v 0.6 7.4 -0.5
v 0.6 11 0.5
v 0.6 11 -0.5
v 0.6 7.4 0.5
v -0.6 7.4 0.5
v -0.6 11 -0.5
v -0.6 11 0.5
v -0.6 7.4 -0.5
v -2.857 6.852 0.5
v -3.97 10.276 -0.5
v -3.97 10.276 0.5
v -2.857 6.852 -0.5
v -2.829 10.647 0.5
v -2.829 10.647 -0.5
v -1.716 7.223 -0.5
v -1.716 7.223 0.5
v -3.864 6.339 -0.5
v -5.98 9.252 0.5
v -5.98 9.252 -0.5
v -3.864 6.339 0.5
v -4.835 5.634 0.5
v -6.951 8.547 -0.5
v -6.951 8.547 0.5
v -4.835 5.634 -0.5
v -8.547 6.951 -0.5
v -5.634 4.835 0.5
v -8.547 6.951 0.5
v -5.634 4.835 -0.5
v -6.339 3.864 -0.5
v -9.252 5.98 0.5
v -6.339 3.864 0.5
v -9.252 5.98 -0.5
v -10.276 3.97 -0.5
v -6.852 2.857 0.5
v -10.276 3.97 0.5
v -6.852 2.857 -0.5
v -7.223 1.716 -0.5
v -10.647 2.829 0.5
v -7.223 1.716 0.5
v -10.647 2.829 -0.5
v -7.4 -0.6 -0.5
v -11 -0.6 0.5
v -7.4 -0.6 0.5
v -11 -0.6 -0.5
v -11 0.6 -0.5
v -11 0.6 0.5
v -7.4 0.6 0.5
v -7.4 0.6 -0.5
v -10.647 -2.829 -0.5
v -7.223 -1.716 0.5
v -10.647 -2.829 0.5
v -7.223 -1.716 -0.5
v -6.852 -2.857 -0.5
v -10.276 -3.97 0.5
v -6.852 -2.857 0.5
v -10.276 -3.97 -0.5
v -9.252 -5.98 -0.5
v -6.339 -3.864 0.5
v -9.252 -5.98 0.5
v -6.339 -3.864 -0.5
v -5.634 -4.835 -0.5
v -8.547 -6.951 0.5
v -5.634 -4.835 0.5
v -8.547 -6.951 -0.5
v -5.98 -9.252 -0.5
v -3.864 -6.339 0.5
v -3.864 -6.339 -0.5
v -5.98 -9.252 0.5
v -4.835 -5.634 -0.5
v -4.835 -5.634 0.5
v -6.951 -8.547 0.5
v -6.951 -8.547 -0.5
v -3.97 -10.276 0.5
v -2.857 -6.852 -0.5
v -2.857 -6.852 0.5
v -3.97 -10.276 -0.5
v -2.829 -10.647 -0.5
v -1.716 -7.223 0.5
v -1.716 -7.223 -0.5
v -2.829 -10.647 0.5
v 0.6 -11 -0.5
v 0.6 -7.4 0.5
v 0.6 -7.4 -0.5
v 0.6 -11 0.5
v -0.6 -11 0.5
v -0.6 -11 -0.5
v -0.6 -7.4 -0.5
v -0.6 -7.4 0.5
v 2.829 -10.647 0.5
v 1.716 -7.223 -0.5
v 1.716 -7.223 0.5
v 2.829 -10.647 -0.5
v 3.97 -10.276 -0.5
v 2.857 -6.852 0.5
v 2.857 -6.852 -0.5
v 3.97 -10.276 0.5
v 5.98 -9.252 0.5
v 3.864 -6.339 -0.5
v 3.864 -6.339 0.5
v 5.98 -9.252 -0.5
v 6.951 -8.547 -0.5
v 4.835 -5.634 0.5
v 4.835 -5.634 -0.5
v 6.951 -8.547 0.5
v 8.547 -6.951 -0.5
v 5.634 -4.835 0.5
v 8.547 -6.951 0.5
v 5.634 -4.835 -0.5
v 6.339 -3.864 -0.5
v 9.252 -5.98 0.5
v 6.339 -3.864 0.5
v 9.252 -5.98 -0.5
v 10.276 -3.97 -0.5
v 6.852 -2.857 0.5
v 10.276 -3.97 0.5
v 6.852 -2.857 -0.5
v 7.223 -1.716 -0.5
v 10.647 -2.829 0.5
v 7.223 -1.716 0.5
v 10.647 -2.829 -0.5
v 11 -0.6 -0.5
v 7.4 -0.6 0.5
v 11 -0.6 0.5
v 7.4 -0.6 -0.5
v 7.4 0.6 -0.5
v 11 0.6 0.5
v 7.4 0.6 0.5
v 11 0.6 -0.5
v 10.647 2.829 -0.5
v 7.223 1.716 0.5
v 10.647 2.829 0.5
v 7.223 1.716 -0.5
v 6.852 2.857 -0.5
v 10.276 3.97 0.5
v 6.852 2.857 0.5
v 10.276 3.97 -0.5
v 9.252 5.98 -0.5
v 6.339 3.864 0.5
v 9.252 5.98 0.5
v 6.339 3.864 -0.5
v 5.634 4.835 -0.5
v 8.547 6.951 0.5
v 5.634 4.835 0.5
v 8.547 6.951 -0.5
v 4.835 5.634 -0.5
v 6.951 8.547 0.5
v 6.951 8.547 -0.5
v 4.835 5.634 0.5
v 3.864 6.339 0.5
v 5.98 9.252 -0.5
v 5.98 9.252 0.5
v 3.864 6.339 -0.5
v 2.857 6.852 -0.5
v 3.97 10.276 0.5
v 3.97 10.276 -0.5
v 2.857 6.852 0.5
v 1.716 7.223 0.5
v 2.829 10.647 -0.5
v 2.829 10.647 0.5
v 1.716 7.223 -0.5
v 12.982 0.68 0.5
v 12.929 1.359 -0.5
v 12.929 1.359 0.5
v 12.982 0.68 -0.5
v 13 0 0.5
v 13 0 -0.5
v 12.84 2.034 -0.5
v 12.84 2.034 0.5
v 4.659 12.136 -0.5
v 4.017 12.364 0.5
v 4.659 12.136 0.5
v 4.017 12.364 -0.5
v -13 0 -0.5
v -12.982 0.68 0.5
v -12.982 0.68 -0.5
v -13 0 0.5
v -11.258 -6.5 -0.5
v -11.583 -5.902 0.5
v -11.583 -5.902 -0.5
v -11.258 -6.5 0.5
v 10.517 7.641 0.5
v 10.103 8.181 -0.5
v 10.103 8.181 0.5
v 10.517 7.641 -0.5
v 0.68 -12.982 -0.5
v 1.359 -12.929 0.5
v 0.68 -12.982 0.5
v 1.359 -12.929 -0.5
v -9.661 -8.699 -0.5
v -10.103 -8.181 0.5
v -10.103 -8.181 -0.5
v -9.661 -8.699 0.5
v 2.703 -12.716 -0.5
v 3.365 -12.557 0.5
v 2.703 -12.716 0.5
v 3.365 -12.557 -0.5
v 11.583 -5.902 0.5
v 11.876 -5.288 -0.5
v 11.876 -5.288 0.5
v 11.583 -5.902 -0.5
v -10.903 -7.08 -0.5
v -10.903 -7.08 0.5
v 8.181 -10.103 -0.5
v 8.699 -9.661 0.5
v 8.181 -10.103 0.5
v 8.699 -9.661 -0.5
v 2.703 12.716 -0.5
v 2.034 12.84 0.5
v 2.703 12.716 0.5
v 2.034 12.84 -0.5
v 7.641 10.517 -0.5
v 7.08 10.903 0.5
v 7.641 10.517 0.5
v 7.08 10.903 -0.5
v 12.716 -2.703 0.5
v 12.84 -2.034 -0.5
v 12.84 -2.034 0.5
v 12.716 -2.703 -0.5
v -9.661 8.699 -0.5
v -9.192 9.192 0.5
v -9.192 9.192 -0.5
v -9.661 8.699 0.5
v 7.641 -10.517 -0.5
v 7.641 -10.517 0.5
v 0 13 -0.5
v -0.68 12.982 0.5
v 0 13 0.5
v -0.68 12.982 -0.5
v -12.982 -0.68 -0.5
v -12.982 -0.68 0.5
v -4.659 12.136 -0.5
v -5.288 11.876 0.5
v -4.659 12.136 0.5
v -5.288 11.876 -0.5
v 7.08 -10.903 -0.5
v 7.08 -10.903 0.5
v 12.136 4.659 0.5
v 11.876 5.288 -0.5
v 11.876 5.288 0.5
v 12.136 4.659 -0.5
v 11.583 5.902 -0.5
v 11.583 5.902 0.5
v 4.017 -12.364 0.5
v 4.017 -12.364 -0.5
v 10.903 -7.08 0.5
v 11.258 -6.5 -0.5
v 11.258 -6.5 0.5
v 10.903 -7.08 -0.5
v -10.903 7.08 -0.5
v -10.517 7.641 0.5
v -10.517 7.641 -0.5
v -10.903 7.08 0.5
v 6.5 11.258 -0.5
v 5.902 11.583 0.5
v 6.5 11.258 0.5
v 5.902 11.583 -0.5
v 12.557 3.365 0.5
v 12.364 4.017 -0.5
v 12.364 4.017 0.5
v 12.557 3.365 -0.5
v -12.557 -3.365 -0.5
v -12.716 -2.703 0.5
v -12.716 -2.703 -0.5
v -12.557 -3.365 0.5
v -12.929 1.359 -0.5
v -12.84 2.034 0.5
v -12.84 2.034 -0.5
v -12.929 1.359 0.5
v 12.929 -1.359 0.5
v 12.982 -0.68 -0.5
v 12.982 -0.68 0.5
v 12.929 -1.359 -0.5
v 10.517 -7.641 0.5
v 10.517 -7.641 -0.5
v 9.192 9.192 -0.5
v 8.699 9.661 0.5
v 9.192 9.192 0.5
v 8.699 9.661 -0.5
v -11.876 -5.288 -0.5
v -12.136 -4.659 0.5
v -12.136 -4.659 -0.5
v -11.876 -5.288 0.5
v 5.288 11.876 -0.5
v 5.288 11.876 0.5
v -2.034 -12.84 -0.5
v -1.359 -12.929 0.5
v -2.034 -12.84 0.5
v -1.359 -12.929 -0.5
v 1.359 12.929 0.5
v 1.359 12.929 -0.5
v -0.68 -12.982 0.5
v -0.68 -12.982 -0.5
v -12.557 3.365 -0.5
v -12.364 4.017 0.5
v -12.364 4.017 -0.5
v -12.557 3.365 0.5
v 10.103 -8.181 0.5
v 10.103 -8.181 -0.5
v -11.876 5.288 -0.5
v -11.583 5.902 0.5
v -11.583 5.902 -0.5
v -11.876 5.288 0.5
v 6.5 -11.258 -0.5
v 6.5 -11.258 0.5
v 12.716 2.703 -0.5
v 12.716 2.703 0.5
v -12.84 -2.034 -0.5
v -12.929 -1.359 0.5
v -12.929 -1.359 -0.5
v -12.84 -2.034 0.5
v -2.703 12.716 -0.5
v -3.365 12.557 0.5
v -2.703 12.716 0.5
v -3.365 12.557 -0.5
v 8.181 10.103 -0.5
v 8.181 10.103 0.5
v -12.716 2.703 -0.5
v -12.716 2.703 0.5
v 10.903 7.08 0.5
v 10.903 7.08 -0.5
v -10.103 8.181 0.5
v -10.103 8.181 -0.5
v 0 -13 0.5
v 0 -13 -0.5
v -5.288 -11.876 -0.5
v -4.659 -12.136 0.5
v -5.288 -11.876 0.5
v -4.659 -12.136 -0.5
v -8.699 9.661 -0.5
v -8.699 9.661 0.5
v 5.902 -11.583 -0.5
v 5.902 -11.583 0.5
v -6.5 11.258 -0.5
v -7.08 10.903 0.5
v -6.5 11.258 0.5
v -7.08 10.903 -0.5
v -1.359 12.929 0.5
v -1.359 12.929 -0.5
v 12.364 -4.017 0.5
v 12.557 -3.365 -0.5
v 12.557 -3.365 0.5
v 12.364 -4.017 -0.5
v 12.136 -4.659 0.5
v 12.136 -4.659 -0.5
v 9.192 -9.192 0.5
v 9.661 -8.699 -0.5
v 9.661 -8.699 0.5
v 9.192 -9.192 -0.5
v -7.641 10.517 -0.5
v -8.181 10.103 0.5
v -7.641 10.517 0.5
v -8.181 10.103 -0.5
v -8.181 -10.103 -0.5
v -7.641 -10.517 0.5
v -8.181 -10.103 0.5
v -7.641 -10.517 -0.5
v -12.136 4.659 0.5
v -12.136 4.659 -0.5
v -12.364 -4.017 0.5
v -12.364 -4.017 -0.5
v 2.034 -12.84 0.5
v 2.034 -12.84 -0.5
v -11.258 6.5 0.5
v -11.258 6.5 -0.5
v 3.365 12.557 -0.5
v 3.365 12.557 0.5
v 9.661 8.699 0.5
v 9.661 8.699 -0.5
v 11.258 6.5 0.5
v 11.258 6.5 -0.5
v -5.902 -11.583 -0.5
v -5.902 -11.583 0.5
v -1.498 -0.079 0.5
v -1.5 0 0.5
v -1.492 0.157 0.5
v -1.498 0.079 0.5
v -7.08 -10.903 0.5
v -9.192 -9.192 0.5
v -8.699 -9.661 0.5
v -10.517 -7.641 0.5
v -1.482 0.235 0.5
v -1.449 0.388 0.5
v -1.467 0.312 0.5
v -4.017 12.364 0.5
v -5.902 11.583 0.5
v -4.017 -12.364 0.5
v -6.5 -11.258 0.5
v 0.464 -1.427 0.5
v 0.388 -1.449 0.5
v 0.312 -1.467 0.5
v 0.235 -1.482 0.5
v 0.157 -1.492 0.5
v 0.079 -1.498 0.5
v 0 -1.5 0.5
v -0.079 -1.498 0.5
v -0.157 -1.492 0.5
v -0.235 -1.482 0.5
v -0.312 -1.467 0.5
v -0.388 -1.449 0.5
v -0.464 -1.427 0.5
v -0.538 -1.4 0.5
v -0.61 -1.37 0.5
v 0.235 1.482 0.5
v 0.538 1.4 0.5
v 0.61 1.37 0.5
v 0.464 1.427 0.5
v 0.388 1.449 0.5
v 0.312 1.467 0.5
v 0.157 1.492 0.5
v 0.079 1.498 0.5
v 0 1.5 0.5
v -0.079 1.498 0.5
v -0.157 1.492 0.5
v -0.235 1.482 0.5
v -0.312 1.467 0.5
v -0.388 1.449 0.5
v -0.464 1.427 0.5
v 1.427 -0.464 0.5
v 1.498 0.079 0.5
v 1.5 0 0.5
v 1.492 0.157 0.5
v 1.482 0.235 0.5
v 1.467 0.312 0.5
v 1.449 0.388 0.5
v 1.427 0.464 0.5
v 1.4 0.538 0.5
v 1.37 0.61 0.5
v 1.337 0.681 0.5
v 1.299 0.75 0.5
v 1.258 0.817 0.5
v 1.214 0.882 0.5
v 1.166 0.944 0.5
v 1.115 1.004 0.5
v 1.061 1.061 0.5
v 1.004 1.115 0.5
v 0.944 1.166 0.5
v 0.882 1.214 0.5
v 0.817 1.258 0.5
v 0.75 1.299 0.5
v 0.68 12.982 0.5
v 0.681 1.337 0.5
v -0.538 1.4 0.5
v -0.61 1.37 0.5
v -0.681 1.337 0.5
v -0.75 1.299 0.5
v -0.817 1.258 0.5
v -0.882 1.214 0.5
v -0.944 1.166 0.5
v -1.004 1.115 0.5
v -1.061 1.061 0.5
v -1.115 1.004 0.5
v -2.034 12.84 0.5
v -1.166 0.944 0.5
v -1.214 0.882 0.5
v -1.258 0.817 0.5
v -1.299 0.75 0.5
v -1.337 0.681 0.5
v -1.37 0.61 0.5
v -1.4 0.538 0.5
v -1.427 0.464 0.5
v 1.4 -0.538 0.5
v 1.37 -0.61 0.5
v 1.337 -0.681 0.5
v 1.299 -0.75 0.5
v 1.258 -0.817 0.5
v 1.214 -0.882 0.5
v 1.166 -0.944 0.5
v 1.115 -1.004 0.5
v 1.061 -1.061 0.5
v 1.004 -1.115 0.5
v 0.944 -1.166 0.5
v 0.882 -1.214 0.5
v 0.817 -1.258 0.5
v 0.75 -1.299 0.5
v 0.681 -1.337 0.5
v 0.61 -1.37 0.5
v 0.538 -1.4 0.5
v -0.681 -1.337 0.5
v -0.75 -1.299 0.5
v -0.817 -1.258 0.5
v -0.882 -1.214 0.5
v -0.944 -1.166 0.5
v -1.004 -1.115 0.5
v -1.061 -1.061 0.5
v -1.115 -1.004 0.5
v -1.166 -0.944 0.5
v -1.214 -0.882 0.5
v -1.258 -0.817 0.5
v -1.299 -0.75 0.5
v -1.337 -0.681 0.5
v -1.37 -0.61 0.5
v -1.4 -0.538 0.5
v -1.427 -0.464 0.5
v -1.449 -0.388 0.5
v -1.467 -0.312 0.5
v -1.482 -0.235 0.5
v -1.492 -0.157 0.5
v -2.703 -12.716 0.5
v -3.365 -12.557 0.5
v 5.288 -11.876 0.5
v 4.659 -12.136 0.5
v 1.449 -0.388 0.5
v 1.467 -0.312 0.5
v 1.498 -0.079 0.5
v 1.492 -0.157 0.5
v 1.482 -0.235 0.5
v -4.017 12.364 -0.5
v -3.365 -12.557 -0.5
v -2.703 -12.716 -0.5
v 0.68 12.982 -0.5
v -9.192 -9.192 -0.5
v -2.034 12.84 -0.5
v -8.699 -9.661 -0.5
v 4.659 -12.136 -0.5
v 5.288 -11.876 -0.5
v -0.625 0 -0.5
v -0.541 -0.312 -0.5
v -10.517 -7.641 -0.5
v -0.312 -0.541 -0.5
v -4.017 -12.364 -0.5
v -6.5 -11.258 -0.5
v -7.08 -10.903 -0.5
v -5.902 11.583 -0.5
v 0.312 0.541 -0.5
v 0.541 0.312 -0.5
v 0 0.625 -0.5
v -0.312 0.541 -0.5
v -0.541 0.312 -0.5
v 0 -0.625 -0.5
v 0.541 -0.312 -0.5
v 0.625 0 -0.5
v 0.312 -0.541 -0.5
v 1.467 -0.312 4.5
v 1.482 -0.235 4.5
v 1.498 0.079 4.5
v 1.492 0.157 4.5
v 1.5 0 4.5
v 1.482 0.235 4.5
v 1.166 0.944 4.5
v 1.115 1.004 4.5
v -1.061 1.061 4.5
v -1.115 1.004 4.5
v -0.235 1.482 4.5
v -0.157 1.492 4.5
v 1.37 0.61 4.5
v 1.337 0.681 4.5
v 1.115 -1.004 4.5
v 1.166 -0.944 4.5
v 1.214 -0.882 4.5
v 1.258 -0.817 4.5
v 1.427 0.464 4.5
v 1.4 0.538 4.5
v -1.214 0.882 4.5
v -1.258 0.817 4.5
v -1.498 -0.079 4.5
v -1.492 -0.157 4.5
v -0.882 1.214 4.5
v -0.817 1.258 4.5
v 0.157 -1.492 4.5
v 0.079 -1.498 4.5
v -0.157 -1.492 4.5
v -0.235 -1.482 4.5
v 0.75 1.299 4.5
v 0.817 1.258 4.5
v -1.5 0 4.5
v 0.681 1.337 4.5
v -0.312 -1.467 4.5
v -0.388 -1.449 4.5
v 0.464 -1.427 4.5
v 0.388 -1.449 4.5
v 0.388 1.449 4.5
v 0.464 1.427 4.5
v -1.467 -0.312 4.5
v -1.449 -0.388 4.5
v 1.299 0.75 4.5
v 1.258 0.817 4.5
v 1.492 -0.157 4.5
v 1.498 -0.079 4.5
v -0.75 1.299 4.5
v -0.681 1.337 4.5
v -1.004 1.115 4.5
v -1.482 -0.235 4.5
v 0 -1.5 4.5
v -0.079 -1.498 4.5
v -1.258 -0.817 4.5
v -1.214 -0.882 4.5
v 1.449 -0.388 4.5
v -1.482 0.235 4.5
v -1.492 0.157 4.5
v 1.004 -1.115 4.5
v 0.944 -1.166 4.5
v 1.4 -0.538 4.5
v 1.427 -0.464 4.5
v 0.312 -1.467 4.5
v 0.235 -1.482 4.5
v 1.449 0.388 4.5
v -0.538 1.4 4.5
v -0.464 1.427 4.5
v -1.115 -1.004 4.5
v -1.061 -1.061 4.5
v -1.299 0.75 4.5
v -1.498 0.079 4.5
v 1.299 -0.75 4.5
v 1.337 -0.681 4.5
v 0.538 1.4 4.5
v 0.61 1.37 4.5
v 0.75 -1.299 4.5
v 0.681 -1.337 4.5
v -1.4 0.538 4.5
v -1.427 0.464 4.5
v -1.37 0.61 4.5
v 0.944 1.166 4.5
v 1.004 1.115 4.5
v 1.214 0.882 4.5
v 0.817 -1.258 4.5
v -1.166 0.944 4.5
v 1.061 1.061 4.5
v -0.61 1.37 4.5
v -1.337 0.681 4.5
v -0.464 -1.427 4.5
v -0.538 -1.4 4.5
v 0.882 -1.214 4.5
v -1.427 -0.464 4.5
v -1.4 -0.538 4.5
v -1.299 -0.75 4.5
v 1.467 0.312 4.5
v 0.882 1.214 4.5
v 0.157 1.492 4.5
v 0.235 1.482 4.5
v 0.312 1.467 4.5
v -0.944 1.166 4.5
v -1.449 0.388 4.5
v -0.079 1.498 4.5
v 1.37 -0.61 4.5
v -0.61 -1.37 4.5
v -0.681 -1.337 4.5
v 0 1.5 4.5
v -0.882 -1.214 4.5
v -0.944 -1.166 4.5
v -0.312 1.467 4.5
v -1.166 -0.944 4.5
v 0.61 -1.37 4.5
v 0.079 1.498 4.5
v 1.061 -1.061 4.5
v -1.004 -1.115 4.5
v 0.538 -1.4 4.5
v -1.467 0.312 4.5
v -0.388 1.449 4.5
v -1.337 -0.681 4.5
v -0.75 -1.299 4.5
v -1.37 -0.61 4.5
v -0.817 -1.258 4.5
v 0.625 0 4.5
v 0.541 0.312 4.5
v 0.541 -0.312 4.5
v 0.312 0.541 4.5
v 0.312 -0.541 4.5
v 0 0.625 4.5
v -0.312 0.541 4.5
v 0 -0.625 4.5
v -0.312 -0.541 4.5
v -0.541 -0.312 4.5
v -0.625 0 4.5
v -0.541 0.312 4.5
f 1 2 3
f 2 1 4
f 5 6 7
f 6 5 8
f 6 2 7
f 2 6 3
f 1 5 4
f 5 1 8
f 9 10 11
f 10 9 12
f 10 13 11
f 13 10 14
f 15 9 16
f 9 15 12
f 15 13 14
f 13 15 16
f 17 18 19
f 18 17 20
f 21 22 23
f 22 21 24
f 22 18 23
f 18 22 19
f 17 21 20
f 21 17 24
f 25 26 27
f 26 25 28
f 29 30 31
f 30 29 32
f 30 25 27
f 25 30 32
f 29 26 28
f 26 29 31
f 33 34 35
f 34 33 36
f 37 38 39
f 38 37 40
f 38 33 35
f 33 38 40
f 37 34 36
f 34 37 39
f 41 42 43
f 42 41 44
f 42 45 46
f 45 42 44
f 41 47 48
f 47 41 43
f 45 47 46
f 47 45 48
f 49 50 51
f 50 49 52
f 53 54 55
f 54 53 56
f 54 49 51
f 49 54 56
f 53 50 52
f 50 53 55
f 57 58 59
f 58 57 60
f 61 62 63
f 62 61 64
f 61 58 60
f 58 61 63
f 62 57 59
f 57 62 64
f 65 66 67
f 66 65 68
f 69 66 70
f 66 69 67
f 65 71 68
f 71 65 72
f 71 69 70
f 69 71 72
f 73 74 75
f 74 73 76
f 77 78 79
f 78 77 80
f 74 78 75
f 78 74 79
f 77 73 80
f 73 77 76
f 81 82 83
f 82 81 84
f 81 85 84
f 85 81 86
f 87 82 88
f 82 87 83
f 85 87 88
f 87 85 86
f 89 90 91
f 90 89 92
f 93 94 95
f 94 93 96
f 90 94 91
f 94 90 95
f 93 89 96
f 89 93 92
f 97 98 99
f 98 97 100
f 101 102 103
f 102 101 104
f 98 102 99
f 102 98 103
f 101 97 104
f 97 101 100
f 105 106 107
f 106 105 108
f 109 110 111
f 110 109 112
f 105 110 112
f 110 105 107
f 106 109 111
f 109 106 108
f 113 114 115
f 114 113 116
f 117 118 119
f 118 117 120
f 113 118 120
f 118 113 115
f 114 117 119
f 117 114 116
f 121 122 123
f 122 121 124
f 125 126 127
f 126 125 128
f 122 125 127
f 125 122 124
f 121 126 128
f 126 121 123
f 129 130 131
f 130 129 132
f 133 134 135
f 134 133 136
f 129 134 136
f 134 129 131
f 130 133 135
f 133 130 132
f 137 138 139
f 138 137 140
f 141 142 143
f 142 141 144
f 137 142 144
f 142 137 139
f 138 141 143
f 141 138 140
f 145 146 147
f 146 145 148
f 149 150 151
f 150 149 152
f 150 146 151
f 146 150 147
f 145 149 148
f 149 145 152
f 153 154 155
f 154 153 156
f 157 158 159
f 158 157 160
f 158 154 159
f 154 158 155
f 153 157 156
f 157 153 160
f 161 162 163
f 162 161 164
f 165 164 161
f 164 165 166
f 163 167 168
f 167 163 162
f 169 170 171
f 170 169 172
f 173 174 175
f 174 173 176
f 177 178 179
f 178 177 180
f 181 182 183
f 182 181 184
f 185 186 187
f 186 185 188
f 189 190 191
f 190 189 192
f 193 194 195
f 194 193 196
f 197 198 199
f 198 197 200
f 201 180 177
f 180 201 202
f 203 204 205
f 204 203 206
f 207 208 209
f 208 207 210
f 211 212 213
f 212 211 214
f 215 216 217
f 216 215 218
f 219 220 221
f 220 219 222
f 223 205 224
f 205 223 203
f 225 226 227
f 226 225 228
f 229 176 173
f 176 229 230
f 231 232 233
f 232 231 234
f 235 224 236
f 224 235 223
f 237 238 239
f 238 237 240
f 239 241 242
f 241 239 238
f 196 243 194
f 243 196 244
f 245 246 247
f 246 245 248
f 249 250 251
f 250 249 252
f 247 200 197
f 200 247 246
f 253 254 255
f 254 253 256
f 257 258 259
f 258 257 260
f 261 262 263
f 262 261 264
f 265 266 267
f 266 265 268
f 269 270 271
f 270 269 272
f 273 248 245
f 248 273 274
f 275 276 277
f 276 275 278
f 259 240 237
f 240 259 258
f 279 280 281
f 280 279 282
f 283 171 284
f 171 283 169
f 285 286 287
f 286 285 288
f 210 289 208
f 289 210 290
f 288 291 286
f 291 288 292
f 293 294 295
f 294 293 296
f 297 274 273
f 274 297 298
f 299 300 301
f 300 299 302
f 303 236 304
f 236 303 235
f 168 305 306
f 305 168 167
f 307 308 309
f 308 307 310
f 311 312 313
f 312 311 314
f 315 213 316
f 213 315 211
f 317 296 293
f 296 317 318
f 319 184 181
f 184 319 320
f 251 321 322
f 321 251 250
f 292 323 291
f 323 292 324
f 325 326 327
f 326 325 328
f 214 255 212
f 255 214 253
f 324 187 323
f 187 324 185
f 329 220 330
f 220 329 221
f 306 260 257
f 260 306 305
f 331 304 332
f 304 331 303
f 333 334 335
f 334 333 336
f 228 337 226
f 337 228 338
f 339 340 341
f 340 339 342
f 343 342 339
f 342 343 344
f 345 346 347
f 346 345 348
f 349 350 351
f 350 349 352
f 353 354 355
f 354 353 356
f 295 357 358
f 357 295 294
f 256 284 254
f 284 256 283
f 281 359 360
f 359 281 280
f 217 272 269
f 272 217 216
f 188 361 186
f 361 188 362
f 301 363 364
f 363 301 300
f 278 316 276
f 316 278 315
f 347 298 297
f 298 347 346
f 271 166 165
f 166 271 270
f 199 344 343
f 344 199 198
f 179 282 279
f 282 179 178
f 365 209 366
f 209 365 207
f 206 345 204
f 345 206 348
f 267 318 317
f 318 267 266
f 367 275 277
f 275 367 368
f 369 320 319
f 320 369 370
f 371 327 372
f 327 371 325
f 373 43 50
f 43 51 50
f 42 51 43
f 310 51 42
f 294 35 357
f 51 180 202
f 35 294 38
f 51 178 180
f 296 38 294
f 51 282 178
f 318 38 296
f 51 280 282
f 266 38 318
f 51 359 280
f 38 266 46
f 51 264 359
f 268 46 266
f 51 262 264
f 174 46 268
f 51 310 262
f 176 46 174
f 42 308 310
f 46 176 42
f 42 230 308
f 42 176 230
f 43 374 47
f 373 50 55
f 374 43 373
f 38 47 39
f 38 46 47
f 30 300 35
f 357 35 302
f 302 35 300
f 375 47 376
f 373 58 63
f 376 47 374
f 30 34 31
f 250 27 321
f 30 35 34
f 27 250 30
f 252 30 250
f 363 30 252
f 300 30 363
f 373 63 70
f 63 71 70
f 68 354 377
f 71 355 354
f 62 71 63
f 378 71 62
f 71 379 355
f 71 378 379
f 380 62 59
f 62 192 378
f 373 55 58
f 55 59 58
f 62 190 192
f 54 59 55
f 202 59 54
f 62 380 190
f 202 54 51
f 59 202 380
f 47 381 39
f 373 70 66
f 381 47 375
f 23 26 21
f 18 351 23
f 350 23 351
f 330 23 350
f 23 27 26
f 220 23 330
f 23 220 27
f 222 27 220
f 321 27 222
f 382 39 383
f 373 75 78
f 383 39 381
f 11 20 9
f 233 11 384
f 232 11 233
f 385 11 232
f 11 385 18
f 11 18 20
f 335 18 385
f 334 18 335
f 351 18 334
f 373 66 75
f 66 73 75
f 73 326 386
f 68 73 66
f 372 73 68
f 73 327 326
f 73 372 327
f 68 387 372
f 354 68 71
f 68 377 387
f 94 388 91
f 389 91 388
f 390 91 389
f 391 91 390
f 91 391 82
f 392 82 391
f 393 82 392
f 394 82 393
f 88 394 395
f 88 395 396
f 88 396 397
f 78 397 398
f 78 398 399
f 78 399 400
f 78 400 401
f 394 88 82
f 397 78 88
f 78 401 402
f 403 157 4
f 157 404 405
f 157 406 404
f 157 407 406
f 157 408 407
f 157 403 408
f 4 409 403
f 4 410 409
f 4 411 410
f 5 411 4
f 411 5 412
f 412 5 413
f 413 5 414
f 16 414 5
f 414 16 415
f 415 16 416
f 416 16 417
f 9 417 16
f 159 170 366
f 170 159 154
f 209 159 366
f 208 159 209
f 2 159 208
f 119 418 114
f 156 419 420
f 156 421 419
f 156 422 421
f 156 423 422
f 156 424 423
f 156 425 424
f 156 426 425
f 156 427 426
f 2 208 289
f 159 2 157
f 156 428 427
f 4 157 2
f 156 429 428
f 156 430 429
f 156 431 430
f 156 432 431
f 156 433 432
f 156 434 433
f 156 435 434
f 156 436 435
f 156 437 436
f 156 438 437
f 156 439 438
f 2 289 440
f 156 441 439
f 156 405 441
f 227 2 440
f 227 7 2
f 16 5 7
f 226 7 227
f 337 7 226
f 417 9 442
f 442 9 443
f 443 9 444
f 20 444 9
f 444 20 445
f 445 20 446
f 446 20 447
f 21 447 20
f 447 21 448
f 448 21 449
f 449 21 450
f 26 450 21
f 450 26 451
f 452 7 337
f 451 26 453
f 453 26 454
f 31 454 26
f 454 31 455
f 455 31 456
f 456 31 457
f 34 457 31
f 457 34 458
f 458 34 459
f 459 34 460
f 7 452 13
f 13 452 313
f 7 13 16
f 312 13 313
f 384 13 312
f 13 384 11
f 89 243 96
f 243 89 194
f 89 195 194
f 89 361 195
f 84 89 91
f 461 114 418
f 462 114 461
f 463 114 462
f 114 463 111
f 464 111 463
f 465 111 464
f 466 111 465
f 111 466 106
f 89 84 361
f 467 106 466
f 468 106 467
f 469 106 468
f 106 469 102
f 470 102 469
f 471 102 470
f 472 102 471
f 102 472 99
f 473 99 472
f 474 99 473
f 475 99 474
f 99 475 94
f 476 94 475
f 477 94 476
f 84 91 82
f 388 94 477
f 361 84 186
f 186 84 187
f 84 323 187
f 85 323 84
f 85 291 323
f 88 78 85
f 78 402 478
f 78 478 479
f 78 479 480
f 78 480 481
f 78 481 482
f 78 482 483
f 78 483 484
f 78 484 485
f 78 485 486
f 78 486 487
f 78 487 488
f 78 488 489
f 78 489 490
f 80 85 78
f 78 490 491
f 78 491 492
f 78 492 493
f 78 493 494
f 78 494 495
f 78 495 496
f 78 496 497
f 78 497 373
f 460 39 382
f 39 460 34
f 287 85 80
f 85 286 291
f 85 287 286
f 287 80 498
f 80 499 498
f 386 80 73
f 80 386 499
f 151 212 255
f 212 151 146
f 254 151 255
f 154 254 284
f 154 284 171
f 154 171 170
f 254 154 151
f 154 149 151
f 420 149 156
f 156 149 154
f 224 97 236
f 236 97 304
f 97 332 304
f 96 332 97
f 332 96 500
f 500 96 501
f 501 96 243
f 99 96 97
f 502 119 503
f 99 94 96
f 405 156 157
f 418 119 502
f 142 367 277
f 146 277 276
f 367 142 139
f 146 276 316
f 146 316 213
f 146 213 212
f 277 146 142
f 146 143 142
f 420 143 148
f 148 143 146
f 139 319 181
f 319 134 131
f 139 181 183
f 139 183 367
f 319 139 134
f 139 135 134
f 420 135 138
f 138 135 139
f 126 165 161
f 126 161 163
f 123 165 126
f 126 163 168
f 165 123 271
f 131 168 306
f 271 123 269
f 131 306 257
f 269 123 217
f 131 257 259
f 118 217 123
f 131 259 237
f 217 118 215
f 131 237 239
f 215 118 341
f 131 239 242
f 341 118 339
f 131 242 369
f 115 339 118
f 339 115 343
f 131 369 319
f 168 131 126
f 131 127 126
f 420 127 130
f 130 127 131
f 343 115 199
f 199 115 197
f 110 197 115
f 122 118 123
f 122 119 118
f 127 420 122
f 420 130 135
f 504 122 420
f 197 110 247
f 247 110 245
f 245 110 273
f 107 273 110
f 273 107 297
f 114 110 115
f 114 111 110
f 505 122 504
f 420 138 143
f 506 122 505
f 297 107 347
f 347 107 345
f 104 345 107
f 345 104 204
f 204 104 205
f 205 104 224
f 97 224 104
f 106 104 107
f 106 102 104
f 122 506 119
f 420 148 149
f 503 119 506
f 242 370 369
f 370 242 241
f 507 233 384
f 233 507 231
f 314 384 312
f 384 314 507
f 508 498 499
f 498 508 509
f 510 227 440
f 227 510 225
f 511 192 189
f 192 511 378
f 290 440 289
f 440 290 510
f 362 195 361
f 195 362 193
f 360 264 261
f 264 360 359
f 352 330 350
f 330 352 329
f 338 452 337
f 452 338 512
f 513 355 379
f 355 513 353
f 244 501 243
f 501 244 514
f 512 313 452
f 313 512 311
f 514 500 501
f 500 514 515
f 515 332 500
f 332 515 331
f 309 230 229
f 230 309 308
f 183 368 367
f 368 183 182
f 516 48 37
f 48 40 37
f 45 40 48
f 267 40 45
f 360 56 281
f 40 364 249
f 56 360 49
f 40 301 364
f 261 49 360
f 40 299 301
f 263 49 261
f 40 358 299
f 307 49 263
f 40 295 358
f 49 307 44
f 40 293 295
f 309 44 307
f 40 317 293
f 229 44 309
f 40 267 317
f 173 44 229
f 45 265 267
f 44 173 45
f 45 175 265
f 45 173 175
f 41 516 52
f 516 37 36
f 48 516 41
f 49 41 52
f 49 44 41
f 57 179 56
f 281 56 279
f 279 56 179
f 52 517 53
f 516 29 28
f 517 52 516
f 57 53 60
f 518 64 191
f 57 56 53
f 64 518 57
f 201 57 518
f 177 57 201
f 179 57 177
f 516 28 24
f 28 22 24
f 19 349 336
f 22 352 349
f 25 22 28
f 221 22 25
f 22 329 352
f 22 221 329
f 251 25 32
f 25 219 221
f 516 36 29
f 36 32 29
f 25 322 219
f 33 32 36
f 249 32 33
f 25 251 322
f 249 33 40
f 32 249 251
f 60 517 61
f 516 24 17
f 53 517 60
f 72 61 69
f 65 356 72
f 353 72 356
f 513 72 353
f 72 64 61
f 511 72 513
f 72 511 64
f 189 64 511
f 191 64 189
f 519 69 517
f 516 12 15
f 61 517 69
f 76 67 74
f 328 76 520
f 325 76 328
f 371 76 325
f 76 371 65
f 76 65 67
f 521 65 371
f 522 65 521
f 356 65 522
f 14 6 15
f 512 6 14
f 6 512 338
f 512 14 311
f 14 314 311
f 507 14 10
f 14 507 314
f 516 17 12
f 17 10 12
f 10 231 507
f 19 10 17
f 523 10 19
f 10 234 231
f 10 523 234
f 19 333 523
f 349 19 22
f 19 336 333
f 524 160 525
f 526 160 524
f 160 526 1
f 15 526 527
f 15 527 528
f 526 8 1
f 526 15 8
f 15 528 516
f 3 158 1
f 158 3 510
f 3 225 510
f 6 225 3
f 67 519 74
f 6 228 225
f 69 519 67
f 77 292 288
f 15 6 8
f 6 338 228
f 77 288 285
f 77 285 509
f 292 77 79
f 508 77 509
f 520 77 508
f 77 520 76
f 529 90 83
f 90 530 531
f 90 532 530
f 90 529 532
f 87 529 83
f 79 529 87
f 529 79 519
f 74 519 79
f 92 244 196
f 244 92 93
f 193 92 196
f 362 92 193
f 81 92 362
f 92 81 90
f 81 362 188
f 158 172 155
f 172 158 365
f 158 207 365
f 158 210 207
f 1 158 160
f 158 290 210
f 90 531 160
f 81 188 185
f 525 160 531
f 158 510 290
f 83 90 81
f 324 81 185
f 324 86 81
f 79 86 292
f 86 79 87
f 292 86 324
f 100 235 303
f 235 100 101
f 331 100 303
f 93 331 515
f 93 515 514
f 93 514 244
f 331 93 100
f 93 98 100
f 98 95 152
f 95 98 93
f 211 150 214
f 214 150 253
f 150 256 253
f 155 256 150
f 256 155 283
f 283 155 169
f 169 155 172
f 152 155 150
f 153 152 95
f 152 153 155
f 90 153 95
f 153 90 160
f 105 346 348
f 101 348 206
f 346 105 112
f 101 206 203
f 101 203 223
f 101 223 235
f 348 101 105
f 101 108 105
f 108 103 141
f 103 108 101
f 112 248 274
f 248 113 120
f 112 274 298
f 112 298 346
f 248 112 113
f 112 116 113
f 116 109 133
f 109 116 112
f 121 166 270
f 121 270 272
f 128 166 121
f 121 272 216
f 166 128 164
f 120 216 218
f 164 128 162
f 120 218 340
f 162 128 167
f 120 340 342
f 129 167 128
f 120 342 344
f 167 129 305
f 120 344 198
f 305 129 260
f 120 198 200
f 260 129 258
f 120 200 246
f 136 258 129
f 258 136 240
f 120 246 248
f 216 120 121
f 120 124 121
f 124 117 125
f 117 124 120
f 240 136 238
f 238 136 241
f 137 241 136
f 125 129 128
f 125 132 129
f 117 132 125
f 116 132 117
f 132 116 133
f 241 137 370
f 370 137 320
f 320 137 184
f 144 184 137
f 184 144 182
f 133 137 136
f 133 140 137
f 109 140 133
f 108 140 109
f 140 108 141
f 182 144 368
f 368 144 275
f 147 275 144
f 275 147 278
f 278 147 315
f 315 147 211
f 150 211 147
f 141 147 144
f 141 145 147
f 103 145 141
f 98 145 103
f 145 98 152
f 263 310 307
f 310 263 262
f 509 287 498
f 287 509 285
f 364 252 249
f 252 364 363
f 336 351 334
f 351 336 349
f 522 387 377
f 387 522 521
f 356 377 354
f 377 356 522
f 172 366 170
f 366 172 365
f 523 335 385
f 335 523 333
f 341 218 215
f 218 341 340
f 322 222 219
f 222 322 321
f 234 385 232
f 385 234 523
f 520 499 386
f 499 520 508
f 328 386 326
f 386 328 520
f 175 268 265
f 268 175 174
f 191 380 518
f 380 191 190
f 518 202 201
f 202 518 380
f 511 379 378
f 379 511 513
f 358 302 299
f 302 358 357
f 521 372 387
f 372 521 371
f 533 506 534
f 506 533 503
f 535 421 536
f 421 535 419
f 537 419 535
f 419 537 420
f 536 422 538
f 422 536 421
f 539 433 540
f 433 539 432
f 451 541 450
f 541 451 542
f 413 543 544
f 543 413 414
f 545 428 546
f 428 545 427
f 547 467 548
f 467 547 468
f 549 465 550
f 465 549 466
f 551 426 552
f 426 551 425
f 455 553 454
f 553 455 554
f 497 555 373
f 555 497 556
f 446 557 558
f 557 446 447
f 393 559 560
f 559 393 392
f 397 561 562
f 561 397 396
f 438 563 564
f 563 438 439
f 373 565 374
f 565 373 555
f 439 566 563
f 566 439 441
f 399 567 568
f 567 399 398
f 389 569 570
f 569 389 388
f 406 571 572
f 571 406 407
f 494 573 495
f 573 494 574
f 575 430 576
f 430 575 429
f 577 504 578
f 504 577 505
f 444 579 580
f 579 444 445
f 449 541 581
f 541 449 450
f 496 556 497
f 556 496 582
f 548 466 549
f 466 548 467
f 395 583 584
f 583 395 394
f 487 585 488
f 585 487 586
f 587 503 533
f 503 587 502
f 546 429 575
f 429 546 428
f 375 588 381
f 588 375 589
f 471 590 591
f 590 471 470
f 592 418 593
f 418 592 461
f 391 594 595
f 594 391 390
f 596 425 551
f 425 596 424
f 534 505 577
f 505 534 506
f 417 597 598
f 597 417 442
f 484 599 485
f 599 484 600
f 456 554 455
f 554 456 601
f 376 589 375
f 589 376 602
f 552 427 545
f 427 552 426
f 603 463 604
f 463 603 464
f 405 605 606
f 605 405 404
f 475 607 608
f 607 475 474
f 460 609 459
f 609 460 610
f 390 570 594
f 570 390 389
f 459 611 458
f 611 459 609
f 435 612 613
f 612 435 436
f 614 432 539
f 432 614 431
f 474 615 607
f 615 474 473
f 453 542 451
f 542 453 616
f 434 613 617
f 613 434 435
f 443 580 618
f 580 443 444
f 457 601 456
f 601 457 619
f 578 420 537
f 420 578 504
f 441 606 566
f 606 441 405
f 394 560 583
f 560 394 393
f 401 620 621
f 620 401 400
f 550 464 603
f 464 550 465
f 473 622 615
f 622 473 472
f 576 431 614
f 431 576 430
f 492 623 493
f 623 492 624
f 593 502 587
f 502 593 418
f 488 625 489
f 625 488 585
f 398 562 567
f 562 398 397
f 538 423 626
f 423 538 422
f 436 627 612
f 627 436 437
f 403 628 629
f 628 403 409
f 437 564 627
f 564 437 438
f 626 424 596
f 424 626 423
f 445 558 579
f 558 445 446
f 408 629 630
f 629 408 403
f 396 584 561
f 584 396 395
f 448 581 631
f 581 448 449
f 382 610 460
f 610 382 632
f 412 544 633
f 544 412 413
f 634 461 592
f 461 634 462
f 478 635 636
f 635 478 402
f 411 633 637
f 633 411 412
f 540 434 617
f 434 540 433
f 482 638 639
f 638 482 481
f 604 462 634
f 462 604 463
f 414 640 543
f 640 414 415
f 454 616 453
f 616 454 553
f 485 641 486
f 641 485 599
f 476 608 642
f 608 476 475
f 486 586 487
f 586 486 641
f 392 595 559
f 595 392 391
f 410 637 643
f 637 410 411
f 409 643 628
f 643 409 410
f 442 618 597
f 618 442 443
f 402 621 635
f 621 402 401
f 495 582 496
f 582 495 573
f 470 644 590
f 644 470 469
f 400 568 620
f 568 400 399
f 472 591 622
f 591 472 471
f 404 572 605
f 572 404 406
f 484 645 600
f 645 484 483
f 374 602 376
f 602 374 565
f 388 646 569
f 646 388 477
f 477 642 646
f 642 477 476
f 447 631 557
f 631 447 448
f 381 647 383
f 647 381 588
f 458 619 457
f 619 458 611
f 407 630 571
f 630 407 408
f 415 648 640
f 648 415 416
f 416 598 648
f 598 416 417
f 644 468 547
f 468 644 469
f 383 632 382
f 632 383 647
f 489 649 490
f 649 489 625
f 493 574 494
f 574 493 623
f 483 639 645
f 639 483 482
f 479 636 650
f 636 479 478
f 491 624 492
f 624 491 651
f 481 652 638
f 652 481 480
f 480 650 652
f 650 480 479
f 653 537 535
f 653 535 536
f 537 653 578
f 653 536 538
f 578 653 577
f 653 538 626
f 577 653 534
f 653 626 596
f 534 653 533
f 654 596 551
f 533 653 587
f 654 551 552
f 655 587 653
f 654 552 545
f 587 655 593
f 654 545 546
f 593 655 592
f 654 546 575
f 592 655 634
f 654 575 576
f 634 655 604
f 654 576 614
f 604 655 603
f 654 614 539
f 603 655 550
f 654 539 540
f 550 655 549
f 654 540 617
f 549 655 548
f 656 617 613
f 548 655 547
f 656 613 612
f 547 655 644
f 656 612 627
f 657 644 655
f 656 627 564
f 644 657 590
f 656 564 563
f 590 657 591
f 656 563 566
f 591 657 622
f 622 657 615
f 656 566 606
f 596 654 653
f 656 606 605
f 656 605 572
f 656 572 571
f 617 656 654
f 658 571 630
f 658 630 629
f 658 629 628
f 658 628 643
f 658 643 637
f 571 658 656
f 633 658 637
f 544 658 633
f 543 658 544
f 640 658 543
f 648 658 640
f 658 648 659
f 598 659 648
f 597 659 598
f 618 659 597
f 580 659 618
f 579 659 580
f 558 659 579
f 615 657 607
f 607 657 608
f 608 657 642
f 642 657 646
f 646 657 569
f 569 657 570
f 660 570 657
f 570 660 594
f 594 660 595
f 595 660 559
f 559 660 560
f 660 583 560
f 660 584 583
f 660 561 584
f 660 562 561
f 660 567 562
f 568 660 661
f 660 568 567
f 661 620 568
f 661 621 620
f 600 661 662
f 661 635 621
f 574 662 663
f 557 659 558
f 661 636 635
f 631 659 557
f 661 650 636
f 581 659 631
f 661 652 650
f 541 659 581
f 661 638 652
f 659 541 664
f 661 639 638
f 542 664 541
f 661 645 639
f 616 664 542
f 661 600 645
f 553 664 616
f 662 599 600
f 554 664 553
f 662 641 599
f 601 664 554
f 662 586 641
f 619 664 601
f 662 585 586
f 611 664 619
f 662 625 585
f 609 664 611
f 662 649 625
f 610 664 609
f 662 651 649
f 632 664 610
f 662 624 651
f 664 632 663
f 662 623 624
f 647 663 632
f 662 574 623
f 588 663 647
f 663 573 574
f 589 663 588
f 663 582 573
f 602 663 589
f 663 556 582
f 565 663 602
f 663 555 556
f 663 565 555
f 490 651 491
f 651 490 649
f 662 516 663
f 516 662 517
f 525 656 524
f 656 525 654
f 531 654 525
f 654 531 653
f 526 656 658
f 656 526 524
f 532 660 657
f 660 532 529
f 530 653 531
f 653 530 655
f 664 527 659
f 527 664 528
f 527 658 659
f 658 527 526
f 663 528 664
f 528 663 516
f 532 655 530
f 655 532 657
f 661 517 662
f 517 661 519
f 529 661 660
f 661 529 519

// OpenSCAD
difference() {
union() {
cylinder(r=13,h=1,center=true, $fn=120);

translate([0,0,2]) 
cylinder(r=1.5,h=5,center=true, $fn=120);

}
cylinder(r=0.625,h=20,center=true, $fn=12);


for ( i = [0 : 19] ){

rotate([0,0,18 * i]) translate([0,9.2,0]) cube([1.2,3.6,3], center=true);

}

}
